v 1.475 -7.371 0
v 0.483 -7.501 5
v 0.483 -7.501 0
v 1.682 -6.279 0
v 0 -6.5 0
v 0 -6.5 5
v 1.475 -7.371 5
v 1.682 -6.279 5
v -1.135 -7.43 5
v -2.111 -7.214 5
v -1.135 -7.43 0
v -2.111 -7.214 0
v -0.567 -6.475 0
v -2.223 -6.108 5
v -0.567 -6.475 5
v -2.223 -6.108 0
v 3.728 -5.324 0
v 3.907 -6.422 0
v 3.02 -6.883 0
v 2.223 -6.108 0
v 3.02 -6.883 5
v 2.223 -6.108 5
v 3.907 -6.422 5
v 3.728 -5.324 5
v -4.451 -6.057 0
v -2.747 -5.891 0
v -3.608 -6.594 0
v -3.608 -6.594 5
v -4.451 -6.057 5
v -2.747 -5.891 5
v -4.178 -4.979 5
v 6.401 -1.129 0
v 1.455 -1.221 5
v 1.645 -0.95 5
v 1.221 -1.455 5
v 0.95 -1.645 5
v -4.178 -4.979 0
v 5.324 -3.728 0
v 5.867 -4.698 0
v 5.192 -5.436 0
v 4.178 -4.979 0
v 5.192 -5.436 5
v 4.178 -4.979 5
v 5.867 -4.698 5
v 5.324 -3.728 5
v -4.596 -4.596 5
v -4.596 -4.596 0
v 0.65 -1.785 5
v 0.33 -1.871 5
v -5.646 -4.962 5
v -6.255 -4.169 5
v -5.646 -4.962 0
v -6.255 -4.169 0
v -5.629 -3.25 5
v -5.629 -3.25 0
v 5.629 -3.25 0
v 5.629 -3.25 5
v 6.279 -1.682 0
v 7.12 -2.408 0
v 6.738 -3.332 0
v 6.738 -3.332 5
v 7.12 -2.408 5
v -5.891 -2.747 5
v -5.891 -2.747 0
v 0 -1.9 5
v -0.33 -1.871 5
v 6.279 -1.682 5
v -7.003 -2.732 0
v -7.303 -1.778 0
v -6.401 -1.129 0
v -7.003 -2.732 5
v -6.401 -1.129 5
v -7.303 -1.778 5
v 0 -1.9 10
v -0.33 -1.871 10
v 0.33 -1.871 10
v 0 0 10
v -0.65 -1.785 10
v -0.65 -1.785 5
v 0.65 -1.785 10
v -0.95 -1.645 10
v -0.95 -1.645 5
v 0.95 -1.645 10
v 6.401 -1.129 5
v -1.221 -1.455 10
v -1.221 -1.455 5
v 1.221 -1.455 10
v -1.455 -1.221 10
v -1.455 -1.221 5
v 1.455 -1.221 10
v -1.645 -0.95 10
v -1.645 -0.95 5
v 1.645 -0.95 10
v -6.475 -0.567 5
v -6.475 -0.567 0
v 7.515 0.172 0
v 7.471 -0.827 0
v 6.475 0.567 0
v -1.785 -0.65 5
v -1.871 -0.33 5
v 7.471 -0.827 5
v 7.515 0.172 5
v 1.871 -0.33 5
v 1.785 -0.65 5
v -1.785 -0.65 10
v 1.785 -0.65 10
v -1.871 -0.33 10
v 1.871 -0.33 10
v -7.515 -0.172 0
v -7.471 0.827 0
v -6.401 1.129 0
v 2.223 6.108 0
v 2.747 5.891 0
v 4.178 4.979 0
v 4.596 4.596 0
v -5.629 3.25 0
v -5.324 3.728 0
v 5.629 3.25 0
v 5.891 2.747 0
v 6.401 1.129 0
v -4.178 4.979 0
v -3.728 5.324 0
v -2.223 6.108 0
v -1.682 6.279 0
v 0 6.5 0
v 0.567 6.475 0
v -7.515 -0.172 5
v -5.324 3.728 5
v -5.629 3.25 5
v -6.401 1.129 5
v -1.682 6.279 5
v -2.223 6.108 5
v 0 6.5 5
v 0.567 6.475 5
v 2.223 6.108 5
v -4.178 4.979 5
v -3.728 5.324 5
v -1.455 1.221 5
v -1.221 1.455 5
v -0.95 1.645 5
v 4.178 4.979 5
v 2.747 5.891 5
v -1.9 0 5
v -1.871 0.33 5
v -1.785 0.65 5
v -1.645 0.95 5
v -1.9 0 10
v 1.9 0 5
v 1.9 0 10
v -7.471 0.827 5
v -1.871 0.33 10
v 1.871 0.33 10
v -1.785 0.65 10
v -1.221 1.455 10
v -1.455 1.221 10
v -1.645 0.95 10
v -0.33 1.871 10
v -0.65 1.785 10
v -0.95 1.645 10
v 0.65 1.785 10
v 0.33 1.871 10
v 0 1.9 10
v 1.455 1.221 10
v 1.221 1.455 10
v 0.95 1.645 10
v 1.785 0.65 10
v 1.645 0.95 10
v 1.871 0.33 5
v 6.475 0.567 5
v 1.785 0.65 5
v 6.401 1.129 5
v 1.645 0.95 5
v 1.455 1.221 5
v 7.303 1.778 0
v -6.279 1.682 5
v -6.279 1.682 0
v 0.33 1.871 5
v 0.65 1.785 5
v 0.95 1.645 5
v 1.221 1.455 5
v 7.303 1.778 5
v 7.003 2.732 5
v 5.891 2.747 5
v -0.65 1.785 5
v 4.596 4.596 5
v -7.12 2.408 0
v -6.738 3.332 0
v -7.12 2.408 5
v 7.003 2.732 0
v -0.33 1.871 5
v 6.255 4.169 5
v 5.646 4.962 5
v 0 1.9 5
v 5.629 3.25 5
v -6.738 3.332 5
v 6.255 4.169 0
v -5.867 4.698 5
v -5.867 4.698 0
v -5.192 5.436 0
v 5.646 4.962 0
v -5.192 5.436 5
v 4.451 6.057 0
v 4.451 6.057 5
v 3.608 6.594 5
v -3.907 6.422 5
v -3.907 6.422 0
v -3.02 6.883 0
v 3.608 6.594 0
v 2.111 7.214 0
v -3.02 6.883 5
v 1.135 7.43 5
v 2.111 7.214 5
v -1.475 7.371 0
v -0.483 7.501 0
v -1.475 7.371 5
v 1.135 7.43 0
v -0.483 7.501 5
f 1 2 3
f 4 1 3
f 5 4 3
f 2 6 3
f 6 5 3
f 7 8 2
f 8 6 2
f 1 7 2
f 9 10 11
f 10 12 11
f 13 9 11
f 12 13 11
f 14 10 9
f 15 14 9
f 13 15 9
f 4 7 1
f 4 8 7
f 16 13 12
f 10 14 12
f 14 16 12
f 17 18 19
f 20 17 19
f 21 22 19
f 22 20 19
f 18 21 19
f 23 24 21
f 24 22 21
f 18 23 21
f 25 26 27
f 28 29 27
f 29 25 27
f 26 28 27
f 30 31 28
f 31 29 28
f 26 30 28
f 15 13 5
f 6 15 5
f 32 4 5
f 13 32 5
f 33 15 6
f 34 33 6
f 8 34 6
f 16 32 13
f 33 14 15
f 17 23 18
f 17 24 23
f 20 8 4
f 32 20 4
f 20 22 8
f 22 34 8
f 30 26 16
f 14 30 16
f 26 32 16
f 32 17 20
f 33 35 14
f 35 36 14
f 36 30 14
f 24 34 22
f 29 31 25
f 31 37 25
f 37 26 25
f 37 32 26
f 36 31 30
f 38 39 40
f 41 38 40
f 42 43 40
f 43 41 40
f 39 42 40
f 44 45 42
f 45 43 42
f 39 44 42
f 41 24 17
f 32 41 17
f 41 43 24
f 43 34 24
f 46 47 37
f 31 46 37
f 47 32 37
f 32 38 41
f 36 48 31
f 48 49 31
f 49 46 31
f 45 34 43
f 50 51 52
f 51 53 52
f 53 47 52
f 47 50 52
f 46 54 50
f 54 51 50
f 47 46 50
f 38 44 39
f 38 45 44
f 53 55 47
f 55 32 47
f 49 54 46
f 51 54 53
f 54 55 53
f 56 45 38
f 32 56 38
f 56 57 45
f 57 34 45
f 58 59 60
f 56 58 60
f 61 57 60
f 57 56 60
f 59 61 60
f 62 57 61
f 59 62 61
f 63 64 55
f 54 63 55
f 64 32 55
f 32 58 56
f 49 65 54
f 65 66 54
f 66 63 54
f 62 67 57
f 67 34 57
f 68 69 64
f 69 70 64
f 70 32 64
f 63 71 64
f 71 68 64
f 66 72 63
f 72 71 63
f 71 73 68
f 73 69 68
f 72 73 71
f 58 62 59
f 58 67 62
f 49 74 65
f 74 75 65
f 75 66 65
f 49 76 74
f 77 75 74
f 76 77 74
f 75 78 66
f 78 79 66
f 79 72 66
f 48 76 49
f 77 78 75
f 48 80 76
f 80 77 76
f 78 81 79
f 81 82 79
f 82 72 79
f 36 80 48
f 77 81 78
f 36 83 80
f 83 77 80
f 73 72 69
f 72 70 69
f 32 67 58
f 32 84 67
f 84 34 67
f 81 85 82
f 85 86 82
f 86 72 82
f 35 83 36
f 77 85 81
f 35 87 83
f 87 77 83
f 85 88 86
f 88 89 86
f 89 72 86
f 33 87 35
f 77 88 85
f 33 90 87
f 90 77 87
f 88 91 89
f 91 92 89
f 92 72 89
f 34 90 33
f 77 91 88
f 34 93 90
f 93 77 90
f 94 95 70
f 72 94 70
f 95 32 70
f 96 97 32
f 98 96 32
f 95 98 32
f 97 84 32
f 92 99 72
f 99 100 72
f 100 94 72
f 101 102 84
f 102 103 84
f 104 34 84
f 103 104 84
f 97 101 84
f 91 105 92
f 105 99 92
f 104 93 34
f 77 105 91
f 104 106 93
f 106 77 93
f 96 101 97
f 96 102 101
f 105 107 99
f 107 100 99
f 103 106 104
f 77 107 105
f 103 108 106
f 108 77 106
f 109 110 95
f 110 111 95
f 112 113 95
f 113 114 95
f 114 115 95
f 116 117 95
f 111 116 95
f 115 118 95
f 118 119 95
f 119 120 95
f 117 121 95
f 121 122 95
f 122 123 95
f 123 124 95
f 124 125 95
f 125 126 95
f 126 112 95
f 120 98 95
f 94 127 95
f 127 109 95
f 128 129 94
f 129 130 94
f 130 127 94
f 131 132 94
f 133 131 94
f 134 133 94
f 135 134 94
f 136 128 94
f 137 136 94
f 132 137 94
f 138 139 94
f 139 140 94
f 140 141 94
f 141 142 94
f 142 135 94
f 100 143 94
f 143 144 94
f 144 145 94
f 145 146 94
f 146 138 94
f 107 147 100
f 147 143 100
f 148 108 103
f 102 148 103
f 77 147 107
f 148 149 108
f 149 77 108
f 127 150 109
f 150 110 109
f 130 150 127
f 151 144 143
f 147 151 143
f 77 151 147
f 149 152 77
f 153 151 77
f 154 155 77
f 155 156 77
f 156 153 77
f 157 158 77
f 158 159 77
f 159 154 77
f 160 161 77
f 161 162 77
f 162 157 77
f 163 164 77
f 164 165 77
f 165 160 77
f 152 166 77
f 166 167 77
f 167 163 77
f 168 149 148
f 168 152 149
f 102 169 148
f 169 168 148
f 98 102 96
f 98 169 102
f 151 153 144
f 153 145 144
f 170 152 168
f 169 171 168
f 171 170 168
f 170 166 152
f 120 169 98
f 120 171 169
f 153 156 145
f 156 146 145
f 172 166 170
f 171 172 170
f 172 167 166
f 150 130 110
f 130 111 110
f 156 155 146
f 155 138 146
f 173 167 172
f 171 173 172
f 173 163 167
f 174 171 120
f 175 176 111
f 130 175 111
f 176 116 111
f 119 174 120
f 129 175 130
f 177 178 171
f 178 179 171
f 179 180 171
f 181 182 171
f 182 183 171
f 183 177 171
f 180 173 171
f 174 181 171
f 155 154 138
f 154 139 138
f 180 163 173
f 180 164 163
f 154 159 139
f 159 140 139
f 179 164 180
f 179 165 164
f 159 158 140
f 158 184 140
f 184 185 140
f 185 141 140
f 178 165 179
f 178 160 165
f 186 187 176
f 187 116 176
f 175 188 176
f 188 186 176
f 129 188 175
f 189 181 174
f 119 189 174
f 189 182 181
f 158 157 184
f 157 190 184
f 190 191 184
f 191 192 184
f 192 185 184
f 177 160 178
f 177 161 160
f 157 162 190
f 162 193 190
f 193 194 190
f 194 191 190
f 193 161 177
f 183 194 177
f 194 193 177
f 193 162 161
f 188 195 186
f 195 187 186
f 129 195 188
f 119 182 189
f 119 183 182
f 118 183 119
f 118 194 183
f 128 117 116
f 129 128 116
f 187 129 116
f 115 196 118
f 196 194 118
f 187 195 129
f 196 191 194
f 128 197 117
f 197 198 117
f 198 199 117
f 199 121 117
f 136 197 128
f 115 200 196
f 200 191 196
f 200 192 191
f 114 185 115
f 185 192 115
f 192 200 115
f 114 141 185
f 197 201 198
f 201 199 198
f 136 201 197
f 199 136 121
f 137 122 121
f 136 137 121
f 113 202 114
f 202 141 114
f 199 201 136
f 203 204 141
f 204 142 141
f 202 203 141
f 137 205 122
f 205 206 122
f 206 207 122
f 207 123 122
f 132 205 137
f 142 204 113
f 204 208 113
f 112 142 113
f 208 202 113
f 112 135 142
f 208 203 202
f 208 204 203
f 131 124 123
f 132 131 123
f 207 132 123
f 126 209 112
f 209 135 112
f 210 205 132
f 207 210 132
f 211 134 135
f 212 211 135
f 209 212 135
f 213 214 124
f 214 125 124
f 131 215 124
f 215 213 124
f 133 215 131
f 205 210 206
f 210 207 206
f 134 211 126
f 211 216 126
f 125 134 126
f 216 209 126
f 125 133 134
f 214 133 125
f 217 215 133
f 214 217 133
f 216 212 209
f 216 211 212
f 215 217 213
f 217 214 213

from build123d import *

# Parameters (mm, degrees)
SKETCH2_R           = 1.9
BOSS_EXTRUDE1_DEPTH = 10
SKETCH2_3_R         = 6.5
BOSS_EXTRUDE2_DEPTH = 5
BOSS_EXTRUDE3_DEPTH = 5


with BuildPart() as part:
    # Sketch2 → Boss-Extrude1 (new body)
    with BuildSketch(Plane.XY):
        Circle(SKETCH2_R)
    extrude(amount=BOSS_EXTRUDE1_DEPTH)

    # Sketch2<3> → Boss-Extrude2 (add)
    with BuildSketch(Plane.XY):
        Circle(SKETCH2_3_R)
    extrude(amount=BOSS_EXTRUDE2_DEPTH)

    # Sketch3 → Boss-Extrude3 (add)
    with BuildSketch(Plane(origin=(0, 0, 0), x_dir=(-1, 0, 0), z_dir=(0, 0, -1))):
        with BuildLine():
            Line((0.483224011, 7.501099556), (1.474668872, 7.370573364))
            Line((1.474668872, 7.370573364), (1.682323793, 6.278517871))
            ThreePointArc((1.682323793, 6.278517871), (0.848420249, 6.444391599), (0, 6.5))
            Line((0, 6.5), (0.483224011, 7.501099556))
        make_face()
        with BuildLine():
            Line((3.019609183, 6.883455555), (2.223130932, 6.108002035))
            ThreePointArc((2.223130932, 6.108002035), (3.001365986, 5.765570416), (3.728246836, 5.324488288))
            Line((3.728246836, 5.324488288), (3.906620016, 6.421706942))
            Line((3.906620016, 6.421706942), (3.019609183, 6.883455555))
        make_face()
        with BuildLine():
            Line((5.191784922, 5.435565226), (4.178119463, 4.97928888))
            ThreePointArc((4.178119463, 4.97928888), (4.792302689, 4.39133635), (5.324488288, 3.728246836))
            Line((5.324488288, 3.728246836), (5.86737513, 4.698287889))
            Line((5.86737513, 4.698287889), (5.191784922, 5.435565226))
        make_face()
        with BuildLine():
            Line((6.737754778, 3.332065509), (5.629165125, 3.25))
            ThreePointArc((5.629165125, 3.25), (6.005216961, 2.48744231), (6.278517871, 1.682323793))
            Line((6.278517871, 1.682323793), (7.12043821, 2.408185976))
            Line((7.12043821, 2.408185976), (6.737754778, 3.332065509))
        make_face()
        with BuildLine():
            Line((7.471051968, 0.826669516), (6.401250395, 1.128713155))
            ThreePointArc((6.401250395, 1.128713155), (6.49381344, 0.283526018), (6.475265538, -0.566512328))
            Line((6.475265538, -0.566512328), (7.514671356, -0.172378706))
            Line((7.514671356, -0.172378706), (7.471051968, 0.826669516))
        make_face()
        with BuildLine():
            Line((7.30323003, -1.778435021), (6.401250395, -1.128713155))
            ThreePointArc((6.401250395, -1.128713155), (6.19916018, -1.954587697), (5.891000616, -2.747018701))
            Line((5.891000616, -2.747018701), (7.002524231, -2.732151972))
            Line((7.002524231, -2.732151972), (7.30323003, -1.778435021))
        make_face()
        with BuildLine():
            Line((6.254530767, -4.169034047), (5.629165125, -3.25))
            ThreePointArc((5.629165125, -3.25), (5.156796712, -3.956949289), (4.596194078, -4.596194078))
            Line((4.596194078, -4.596194078), (5.645769338, -4.962387388))
            Line((5.645769338, -4.962387388), (6.254530767, -4.169034047))
        make_face()
        with BuildLine():
            Line((4.451442786, -6.056786039), (4.178119463, -4.97928888))
            ThreePointArc((4.178119463, -4.97928888), (3.492447454, -5.482044398), (2.747018701, -5.891000616))
            Line((2.747018701, -5.891000616), (3.60805134, -6.594085648))
            Line((3.60805134, -6.594085648), (4.451442786, -6.056786039))
        make_face()
        with BuildLine():
            Line((2.111445108, -7.214000246), (2.223130932, -6.108002035))
            ThreePointArc((2.223130932, -6.108002035), (1.406857491, -6.345924046), (0.566512328, -6.475265538))
            Line((0.566512328, -6.475265538), (1.135149101, -7.43043986))
            Line((1.135149101, -7.43043986), (2.111445108, -7.214000246))
        make_face()
        with BuildLine():
            Line((-0.483224011, -7.501099556), (0, -6.5))
            ThreePointArc((0, -6.5), (-0.848420249, -6.444391599), (-1.682323793, -6.278517871))
            Line((-1.682323793, -6.278517871), (-1.474668872, -7.370573364))
            Line((-1.474668872, -7.370573364), (-0.483224011, -7.501099556))
        make_face()
        with BuildLine():
            Line((-3.019609183, -6.883455555), (-2.223130932, -6.108002035))
            ThreePointArc((-2.223130932, -6.108002035), (-3.001365986, -5.765570416), (-3.728246836, -5.324488288))
            Line((-3.728246836, -5.324488288), (-3.906620016, -6.421706942))
            Line((-3.906620016, -6.421706942), (-3.019609183, -6.883455555))
        make_face()
        with BuildLine():
            Line((-5.191784922, -5.435565226), (-4.178119463, -4.97928888))
            ThreePointArc((-4.178119463, -4.97928888), (-4.792302689, -4.39133635), (-5.324488288, -3.728246836))
            Line((-5.324488288, -3.728246836), (-5.86737513, -4.698287889))
            Line((-5.86737513, -4.698287889), (-5.191784922, -5.435565226))
        make_face()
        with BuildLine():
            Line((-6.737754778, -3.332065509), (-5.629165125, -3.25))
            ThreePointArc((-5.629165125, -3.25), (-6.005216961, -2.48744231), (-6.278517871, -1.682323793))
            Line((-6.278517871, -1.682323793), (-7.12043821, -2.408185976))
            Line((-7.12043821, -2.408185976), (-6.737754778, -3.332065509))
        make_face()
        with BuildLine():
            Line((-7.471051968, -0.826669516), (-6.401250395, -1.128713155))
            ThreePointArc((-6.401250395, -1.128713155), (-6.49381344, -0.283526018), (-6.475265538, 0.566512328))
            Line((-6.475265538, 0.566512328), (-7.514671356, 0.172378706))
            Line((-7.514671356, 0.172378706), (-7.471051968, -0.826669516))
        make_face()
        with BuildLine():
            Line((-7.30323003, 1.778435021), (-6.401250395, 1.128713155))
            ThreePointArc((-6.401250395, 1.128713155), (-6.19916018, 1.954587697), (-5.891000616, 2.747018701))
            Line((-5.891000616, 2.747018701), (-7.002524231, 2.732151972))
            Line((-7.002524231, 2.732151972), (-7.30323003, 1.778435021))
        make_face()
        with BuildLine():
            Line((-6.254530767, 4.169034047), (-5.629165125, 3.25))
            ThreePointArc((-5.629165125, 3.25), (-5.156796712, 3.956949289), (-4.596194078, 4.596194078))
            Line((-4.596194078, 4.596194078), (-5.645769338, 4.962387388))
            Line((-5.645769338, 4.962387388), (-6.254530767, 4.169034047))
        make_face()
        with BuildLine():
            Line((-4.451442786, 6.056786039), (-4.178119463, 4.97928888))
            ThreePointArc((-4.178119463, 4.97928888), (-3.492447454, 5.482044398), (-2.747018701, 5.891000616))
            Line((-2.747018701, 5.891000616), (-3.60805134, 6.594085648))
            Line((-3.60805134, 6.594085648), (-4.451442786, 6.056786039))
        make_face()
        with BuildLine():
            Line((-2.111445108, 7.214000246), (-2.223130932, 6.108002035))
            ThreePointArc((-2.223130932, 6.108002035), (-1.406857491, 6.345924046), (-0.566512328, 6.475265538))
            Line((-0.566512328, 6.475265538), (-1.135149101, 7.43043986))
            Line((-1.135149101, 7.43043986), (-2.111445108, 7.214000246))
        make_face()
    extrude(amount=-BOSS_EXTRUDE3_DEPTH)


solid = part.part
